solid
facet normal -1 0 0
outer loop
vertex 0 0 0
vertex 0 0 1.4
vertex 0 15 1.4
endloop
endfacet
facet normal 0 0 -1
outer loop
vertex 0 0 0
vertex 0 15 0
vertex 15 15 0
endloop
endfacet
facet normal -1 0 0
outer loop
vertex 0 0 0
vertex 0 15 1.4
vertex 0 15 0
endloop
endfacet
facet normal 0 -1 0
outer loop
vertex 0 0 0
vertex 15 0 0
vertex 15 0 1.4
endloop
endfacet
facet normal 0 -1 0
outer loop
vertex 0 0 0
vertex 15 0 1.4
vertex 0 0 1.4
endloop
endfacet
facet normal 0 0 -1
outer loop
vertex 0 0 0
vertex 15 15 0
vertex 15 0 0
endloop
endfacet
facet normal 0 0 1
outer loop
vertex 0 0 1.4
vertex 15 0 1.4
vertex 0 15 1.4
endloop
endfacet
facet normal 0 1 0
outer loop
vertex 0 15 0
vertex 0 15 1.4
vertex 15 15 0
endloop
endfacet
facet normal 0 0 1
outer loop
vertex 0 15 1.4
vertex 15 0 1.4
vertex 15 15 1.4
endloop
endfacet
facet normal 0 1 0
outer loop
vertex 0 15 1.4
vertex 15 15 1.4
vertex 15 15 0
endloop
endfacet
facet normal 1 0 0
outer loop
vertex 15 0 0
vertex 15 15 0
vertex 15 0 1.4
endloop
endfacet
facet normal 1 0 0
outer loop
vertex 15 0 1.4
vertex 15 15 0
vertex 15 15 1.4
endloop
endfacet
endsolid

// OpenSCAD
/* Warning, this is a very basic generator with a lot of approximation 
input data : [LFBGA, ARB, 15x15x1.4mm, 289, , B, C04-21127B]
generated by com.zoubworld.electronics.cad.model3d.Basic
Date : Sun Feb 15 10:50:49 CET 2026
*/

//body
color("black")
translate([0,0,0])
cube([15.0,15.0,1.4], center=false);
